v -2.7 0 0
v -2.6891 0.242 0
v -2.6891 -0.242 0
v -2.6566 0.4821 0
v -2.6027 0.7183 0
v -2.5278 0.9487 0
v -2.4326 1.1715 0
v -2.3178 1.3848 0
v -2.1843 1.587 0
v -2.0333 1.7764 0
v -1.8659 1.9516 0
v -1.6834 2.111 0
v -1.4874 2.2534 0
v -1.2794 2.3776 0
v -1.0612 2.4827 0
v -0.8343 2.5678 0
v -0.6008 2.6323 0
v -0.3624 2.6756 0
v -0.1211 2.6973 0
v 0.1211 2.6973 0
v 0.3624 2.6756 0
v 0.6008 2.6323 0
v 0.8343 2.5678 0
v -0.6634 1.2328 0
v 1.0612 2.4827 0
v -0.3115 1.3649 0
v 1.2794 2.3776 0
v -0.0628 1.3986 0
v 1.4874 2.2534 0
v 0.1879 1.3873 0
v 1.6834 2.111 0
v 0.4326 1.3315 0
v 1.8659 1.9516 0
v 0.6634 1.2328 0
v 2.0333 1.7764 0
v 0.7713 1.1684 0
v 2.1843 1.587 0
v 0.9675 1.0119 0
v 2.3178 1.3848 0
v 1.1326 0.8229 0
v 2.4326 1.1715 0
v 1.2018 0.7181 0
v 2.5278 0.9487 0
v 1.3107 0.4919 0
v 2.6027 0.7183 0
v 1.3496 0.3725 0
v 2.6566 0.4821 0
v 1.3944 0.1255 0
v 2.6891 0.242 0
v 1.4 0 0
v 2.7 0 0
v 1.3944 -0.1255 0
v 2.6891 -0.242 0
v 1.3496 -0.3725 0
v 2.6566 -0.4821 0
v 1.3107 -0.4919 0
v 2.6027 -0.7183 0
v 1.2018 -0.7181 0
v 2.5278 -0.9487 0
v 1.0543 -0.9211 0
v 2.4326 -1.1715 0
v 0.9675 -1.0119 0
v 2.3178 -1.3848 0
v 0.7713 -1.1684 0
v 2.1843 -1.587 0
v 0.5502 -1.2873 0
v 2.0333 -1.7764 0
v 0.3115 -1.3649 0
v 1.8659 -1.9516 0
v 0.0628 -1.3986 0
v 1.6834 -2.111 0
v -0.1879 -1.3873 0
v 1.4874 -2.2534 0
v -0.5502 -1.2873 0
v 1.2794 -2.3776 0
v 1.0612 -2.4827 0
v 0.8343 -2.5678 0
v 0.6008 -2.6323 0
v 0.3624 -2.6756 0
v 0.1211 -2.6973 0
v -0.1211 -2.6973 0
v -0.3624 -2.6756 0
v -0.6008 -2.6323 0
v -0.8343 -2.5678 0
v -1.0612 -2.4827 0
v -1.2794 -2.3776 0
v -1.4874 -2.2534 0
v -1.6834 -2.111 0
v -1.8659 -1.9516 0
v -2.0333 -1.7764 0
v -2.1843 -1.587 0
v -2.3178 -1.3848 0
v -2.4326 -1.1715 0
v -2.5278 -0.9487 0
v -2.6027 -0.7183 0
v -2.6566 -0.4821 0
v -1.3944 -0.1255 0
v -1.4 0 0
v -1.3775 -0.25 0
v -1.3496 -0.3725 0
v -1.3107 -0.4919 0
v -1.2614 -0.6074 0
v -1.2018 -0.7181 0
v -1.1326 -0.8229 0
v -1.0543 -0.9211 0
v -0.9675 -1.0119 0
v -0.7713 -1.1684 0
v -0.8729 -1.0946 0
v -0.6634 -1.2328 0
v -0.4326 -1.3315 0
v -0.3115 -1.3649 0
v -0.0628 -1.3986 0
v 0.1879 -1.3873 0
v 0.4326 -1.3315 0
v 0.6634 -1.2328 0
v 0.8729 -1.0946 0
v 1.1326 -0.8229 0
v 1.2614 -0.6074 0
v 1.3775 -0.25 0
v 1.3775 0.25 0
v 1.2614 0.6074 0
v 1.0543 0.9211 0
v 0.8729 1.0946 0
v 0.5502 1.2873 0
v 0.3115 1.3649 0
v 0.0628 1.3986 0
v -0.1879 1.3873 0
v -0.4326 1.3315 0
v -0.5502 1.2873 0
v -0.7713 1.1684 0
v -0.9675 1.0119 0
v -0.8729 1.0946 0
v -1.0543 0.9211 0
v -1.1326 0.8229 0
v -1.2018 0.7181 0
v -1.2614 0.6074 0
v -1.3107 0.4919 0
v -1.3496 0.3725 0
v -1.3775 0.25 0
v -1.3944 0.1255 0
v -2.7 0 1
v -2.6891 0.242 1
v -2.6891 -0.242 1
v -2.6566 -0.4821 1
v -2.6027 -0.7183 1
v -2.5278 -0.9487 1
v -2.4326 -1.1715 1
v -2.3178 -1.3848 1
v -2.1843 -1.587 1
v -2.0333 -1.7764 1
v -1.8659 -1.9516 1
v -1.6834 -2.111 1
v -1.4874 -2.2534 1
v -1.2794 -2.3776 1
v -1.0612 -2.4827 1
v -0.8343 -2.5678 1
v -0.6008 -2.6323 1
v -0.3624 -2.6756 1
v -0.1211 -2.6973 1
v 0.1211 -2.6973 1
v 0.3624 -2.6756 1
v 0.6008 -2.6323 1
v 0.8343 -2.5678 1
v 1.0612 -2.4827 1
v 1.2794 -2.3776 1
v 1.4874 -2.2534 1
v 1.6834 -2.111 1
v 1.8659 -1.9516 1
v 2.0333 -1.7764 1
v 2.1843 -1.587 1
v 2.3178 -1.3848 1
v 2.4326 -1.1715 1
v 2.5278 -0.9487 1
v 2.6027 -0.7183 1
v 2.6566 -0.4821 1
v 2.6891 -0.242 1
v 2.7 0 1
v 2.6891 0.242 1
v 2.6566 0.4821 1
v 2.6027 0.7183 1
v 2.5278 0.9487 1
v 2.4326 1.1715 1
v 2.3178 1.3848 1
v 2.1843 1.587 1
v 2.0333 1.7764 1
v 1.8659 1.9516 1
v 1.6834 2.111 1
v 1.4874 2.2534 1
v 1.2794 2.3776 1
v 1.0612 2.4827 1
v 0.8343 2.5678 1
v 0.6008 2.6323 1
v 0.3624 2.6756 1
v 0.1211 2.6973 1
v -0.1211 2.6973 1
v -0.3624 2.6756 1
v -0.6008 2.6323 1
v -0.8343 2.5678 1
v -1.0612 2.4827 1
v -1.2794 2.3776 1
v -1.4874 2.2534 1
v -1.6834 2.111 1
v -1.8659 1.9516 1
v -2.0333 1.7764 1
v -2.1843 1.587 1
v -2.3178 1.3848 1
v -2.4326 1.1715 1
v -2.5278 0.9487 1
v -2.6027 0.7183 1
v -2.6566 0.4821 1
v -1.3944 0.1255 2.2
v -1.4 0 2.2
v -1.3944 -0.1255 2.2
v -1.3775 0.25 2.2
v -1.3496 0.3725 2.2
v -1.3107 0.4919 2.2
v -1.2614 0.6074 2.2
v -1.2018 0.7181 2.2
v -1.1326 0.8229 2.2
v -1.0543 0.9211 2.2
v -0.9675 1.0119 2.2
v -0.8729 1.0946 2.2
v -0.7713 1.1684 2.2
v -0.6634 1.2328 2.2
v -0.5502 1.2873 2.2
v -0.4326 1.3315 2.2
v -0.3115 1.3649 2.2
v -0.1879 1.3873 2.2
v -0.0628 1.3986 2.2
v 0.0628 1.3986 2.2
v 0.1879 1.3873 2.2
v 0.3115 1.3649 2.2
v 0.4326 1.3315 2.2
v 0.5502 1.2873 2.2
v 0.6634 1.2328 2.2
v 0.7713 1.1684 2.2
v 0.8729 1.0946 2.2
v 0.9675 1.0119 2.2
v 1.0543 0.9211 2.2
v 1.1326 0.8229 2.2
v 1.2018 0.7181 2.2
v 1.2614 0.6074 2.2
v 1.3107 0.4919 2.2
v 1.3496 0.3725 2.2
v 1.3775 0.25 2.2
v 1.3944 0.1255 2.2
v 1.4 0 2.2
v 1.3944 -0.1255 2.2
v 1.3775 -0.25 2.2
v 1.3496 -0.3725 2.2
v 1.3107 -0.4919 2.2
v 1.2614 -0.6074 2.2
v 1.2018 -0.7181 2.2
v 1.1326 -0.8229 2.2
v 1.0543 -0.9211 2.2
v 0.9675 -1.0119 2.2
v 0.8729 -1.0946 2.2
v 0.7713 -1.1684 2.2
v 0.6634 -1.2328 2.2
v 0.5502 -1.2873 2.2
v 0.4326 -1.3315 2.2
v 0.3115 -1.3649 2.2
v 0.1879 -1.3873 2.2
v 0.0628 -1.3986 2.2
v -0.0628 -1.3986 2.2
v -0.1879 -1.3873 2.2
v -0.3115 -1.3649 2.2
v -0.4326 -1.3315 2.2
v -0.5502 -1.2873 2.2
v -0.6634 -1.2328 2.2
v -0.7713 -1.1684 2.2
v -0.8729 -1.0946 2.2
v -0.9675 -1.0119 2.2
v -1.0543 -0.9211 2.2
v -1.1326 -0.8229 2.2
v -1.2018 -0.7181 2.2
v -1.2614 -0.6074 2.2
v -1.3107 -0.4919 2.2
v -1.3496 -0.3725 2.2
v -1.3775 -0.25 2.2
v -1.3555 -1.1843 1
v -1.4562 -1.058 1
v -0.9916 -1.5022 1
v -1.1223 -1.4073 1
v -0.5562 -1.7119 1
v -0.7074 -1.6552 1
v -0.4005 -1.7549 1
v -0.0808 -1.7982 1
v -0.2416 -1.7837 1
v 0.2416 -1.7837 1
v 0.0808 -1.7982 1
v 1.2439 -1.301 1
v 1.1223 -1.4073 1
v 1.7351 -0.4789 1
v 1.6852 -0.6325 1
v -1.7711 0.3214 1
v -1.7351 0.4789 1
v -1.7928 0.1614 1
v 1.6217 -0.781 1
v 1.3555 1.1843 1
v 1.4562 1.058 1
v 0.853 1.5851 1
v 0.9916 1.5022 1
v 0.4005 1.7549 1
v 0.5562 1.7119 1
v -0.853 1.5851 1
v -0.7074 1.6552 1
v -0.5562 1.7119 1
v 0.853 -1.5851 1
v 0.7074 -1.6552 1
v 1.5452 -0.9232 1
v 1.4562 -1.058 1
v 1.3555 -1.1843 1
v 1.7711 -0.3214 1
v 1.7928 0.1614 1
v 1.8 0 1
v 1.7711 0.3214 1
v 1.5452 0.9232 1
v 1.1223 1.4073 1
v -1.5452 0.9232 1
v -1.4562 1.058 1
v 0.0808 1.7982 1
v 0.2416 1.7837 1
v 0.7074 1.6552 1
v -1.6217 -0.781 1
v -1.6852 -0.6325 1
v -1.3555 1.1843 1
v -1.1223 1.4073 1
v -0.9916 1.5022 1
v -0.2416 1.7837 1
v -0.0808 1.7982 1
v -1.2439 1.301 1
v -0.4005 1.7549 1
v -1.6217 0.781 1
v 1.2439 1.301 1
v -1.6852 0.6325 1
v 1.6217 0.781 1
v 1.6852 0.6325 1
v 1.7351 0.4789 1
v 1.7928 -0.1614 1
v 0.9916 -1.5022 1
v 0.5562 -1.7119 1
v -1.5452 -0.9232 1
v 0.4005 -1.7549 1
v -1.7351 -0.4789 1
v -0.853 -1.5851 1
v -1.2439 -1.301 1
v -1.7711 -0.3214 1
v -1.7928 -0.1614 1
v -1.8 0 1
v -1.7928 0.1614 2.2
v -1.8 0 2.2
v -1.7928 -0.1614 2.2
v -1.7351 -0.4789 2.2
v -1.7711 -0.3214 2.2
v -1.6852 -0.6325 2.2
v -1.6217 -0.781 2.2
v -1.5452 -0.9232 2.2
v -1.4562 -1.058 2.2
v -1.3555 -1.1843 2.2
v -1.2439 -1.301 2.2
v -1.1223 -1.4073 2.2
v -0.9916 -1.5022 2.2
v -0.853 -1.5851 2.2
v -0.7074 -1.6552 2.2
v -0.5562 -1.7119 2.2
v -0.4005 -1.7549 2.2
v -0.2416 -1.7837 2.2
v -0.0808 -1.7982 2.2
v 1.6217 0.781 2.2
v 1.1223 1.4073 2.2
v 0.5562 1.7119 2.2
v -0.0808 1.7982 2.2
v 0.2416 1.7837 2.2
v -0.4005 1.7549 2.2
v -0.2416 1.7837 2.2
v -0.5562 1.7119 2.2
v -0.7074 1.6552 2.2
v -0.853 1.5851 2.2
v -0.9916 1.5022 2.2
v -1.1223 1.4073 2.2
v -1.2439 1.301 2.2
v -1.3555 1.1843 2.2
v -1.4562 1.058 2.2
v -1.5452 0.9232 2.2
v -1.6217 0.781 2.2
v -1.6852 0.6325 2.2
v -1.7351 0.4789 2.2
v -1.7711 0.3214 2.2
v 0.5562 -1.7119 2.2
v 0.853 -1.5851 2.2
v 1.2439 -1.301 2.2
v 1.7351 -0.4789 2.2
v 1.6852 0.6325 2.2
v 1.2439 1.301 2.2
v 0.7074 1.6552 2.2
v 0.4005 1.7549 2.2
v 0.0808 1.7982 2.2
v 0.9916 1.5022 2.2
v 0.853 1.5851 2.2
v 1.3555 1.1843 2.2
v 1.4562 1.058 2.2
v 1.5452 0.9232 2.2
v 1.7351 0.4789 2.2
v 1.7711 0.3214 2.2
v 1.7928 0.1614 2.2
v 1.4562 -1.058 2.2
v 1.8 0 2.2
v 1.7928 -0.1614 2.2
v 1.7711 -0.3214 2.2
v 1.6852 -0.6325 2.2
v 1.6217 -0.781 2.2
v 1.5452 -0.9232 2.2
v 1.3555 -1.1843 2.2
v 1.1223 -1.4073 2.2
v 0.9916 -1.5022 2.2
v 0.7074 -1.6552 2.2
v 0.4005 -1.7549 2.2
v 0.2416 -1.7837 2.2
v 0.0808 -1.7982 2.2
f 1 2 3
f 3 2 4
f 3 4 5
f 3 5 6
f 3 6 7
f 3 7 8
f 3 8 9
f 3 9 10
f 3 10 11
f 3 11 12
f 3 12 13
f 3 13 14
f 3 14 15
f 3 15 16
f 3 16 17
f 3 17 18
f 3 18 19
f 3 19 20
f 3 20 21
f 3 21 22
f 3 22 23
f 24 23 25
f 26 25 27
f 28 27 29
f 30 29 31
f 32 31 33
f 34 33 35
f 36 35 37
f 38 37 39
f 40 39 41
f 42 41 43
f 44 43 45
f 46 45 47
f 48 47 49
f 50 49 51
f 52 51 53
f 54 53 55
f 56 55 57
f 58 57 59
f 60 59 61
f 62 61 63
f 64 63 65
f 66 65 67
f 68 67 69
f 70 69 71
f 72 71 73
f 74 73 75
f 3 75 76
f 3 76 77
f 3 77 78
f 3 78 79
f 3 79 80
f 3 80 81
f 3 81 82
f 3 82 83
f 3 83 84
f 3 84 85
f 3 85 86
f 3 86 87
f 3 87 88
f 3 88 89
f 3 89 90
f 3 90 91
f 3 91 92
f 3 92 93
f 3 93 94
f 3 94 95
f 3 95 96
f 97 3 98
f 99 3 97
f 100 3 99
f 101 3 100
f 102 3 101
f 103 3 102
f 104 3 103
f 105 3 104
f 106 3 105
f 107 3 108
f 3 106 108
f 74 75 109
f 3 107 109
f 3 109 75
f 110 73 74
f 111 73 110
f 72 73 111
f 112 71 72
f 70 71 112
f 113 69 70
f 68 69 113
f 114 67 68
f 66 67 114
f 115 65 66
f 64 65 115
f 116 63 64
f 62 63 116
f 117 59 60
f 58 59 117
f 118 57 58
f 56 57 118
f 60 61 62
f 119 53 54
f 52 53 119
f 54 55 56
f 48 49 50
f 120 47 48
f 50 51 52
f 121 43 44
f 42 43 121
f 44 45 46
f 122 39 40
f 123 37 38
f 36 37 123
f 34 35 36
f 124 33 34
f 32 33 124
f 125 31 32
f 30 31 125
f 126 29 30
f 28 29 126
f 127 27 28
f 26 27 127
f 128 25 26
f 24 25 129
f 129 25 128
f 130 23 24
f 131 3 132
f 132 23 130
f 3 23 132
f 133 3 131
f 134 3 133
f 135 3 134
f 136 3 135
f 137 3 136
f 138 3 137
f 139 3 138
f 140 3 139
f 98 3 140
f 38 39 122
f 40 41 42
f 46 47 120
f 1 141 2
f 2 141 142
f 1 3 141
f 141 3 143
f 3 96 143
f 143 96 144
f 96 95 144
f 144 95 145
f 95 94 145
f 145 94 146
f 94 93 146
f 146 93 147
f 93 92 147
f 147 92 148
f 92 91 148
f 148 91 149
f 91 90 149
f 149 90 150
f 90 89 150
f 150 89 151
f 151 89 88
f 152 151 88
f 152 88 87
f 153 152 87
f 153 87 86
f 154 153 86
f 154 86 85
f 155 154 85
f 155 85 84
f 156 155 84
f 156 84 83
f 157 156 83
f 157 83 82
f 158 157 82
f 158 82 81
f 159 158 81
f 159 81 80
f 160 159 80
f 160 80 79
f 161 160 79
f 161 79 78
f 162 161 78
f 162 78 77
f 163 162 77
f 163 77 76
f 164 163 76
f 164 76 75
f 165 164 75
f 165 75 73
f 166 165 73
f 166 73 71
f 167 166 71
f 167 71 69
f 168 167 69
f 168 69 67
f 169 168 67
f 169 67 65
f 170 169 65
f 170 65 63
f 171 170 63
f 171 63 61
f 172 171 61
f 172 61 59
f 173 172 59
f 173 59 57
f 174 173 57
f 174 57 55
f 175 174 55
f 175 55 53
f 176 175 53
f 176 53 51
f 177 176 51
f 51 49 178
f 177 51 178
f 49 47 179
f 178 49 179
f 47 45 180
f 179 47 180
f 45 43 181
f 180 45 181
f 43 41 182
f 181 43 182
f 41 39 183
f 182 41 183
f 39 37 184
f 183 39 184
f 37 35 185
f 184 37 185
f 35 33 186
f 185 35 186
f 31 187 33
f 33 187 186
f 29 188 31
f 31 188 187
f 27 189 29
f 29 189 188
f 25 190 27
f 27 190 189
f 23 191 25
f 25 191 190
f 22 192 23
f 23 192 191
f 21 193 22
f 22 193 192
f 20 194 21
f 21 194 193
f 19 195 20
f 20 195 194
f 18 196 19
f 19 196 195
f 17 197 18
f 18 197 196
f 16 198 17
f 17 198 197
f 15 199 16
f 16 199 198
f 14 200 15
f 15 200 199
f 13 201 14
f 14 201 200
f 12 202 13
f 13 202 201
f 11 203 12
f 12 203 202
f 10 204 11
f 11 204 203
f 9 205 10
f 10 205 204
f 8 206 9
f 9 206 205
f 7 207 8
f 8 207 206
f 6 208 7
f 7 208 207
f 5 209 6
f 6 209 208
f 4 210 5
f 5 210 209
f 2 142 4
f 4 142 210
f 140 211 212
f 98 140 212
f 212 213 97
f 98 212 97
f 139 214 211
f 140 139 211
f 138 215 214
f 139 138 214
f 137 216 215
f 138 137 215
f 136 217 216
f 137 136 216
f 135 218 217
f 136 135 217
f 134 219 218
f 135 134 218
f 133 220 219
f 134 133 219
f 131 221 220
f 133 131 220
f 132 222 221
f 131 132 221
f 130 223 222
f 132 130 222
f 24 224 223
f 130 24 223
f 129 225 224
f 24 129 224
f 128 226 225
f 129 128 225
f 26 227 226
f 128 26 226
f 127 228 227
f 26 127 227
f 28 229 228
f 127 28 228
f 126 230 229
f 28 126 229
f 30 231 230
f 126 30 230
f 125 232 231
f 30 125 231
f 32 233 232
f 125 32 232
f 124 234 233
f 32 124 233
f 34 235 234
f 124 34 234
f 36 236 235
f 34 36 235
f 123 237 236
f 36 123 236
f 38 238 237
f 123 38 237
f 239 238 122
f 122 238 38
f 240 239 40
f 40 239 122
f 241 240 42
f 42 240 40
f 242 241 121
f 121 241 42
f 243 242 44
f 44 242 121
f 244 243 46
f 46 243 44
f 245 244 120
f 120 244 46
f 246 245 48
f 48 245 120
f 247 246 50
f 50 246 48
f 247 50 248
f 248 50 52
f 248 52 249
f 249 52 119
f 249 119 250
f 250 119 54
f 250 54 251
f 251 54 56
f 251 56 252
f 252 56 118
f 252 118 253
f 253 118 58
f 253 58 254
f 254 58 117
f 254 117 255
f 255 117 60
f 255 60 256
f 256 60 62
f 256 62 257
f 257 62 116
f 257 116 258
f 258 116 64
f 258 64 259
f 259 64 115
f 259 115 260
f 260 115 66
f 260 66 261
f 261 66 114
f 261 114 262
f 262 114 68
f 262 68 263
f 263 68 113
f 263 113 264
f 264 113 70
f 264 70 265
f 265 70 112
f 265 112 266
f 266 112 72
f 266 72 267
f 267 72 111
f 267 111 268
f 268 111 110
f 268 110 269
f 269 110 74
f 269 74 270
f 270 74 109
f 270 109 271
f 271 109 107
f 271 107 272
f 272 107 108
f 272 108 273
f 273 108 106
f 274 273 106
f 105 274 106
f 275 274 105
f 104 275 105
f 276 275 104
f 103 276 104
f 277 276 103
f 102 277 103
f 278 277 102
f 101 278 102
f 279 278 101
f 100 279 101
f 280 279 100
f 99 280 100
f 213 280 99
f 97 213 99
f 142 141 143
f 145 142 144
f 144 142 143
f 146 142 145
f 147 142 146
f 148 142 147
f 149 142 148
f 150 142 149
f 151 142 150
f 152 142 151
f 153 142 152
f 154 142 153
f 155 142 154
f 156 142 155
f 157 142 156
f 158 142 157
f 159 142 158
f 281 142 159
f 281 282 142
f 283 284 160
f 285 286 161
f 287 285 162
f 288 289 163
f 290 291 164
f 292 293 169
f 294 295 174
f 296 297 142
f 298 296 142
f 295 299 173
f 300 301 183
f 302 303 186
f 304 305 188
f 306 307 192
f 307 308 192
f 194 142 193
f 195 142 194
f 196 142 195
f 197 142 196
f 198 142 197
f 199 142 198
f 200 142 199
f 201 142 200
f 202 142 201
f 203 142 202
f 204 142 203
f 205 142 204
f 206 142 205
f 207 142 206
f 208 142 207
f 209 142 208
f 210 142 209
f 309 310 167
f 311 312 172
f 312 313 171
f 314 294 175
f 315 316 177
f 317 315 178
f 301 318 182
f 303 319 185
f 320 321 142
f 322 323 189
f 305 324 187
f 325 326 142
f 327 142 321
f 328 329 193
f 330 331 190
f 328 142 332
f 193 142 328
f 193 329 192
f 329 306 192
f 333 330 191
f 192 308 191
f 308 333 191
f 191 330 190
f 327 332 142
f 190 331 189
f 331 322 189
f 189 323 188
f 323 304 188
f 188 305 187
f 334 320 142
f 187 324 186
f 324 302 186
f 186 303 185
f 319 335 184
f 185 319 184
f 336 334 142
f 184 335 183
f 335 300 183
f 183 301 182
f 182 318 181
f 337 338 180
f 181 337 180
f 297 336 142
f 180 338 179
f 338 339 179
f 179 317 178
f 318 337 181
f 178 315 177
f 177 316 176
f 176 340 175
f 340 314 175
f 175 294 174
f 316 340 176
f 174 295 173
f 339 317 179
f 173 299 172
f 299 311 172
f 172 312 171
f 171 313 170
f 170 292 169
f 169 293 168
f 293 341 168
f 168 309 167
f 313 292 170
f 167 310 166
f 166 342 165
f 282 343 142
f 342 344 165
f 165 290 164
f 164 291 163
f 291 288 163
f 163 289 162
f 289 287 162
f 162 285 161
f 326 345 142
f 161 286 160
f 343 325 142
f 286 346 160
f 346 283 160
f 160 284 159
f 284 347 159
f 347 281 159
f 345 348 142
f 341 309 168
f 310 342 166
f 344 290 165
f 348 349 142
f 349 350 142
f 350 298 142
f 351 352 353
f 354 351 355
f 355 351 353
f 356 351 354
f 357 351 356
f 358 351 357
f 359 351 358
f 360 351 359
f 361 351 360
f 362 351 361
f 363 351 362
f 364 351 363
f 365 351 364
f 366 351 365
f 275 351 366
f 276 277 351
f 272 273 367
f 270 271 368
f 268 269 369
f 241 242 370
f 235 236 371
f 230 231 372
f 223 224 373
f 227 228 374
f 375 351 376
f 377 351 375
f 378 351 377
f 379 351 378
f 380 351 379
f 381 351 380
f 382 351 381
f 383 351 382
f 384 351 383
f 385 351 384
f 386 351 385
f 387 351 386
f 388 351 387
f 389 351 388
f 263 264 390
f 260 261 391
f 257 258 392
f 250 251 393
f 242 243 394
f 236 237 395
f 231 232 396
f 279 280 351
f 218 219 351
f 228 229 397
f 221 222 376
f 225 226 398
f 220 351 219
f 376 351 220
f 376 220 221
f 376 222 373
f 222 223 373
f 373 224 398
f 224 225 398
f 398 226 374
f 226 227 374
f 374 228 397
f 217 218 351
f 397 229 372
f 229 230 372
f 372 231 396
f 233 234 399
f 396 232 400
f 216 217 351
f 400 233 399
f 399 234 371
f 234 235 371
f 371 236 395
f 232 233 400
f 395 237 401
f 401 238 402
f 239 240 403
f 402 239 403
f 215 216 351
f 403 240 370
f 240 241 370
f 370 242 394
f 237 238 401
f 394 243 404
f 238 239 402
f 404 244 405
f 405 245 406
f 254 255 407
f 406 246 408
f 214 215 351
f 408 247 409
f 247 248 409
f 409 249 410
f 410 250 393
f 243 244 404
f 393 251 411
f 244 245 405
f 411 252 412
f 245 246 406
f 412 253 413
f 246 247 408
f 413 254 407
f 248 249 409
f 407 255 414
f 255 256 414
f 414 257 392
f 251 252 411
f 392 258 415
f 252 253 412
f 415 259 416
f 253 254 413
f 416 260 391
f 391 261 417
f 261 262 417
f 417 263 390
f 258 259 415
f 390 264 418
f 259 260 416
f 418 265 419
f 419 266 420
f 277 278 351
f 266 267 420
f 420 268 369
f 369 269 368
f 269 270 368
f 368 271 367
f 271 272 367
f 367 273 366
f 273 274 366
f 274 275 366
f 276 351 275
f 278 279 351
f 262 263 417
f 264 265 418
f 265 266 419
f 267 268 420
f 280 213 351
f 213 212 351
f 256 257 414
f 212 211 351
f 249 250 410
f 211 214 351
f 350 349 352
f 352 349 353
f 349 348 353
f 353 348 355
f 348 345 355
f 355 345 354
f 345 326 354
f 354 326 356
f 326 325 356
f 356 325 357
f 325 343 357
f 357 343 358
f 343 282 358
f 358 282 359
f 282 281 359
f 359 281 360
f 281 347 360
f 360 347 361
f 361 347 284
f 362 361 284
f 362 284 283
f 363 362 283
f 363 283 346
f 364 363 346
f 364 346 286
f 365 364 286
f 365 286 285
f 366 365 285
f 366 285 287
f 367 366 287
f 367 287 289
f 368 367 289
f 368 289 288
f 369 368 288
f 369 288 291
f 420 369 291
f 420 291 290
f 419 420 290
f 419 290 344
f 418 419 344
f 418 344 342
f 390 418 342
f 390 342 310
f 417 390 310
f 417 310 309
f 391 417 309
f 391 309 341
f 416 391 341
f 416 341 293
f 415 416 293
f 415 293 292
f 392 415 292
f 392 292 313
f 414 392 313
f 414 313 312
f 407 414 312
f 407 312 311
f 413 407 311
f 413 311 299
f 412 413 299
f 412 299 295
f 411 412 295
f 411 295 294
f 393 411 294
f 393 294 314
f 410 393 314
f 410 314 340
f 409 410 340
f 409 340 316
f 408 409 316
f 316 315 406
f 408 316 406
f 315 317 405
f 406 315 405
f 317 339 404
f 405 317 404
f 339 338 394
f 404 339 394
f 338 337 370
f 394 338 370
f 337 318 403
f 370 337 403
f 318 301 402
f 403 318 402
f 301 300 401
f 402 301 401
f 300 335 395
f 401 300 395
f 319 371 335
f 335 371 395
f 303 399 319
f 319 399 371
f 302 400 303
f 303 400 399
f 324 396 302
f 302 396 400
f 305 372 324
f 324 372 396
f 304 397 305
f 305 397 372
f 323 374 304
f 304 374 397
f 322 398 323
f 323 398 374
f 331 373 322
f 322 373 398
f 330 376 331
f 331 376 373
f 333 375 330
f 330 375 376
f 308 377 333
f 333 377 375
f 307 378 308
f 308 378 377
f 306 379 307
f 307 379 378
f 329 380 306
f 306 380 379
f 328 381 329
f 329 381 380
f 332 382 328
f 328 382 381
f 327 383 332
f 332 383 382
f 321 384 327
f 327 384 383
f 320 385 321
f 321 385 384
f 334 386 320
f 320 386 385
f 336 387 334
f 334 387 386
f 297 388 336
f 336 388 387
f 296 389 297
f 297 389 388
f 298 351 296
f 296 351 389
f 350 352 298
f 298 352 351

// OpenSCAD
$fn = 70;

rg = 2.7;
hg = 1;
rk = 1.8;
hk = 1.2;
ri = 1.4;


difference(){
	union(){
		cylinder(r = rg, h = hg);
		translate([0, 0, hg]) cylinder(r = rk, h = hk);
	}
	translate([0,0,-1])cylinder(r = ri, h = hg+ hk+2);
	
}
